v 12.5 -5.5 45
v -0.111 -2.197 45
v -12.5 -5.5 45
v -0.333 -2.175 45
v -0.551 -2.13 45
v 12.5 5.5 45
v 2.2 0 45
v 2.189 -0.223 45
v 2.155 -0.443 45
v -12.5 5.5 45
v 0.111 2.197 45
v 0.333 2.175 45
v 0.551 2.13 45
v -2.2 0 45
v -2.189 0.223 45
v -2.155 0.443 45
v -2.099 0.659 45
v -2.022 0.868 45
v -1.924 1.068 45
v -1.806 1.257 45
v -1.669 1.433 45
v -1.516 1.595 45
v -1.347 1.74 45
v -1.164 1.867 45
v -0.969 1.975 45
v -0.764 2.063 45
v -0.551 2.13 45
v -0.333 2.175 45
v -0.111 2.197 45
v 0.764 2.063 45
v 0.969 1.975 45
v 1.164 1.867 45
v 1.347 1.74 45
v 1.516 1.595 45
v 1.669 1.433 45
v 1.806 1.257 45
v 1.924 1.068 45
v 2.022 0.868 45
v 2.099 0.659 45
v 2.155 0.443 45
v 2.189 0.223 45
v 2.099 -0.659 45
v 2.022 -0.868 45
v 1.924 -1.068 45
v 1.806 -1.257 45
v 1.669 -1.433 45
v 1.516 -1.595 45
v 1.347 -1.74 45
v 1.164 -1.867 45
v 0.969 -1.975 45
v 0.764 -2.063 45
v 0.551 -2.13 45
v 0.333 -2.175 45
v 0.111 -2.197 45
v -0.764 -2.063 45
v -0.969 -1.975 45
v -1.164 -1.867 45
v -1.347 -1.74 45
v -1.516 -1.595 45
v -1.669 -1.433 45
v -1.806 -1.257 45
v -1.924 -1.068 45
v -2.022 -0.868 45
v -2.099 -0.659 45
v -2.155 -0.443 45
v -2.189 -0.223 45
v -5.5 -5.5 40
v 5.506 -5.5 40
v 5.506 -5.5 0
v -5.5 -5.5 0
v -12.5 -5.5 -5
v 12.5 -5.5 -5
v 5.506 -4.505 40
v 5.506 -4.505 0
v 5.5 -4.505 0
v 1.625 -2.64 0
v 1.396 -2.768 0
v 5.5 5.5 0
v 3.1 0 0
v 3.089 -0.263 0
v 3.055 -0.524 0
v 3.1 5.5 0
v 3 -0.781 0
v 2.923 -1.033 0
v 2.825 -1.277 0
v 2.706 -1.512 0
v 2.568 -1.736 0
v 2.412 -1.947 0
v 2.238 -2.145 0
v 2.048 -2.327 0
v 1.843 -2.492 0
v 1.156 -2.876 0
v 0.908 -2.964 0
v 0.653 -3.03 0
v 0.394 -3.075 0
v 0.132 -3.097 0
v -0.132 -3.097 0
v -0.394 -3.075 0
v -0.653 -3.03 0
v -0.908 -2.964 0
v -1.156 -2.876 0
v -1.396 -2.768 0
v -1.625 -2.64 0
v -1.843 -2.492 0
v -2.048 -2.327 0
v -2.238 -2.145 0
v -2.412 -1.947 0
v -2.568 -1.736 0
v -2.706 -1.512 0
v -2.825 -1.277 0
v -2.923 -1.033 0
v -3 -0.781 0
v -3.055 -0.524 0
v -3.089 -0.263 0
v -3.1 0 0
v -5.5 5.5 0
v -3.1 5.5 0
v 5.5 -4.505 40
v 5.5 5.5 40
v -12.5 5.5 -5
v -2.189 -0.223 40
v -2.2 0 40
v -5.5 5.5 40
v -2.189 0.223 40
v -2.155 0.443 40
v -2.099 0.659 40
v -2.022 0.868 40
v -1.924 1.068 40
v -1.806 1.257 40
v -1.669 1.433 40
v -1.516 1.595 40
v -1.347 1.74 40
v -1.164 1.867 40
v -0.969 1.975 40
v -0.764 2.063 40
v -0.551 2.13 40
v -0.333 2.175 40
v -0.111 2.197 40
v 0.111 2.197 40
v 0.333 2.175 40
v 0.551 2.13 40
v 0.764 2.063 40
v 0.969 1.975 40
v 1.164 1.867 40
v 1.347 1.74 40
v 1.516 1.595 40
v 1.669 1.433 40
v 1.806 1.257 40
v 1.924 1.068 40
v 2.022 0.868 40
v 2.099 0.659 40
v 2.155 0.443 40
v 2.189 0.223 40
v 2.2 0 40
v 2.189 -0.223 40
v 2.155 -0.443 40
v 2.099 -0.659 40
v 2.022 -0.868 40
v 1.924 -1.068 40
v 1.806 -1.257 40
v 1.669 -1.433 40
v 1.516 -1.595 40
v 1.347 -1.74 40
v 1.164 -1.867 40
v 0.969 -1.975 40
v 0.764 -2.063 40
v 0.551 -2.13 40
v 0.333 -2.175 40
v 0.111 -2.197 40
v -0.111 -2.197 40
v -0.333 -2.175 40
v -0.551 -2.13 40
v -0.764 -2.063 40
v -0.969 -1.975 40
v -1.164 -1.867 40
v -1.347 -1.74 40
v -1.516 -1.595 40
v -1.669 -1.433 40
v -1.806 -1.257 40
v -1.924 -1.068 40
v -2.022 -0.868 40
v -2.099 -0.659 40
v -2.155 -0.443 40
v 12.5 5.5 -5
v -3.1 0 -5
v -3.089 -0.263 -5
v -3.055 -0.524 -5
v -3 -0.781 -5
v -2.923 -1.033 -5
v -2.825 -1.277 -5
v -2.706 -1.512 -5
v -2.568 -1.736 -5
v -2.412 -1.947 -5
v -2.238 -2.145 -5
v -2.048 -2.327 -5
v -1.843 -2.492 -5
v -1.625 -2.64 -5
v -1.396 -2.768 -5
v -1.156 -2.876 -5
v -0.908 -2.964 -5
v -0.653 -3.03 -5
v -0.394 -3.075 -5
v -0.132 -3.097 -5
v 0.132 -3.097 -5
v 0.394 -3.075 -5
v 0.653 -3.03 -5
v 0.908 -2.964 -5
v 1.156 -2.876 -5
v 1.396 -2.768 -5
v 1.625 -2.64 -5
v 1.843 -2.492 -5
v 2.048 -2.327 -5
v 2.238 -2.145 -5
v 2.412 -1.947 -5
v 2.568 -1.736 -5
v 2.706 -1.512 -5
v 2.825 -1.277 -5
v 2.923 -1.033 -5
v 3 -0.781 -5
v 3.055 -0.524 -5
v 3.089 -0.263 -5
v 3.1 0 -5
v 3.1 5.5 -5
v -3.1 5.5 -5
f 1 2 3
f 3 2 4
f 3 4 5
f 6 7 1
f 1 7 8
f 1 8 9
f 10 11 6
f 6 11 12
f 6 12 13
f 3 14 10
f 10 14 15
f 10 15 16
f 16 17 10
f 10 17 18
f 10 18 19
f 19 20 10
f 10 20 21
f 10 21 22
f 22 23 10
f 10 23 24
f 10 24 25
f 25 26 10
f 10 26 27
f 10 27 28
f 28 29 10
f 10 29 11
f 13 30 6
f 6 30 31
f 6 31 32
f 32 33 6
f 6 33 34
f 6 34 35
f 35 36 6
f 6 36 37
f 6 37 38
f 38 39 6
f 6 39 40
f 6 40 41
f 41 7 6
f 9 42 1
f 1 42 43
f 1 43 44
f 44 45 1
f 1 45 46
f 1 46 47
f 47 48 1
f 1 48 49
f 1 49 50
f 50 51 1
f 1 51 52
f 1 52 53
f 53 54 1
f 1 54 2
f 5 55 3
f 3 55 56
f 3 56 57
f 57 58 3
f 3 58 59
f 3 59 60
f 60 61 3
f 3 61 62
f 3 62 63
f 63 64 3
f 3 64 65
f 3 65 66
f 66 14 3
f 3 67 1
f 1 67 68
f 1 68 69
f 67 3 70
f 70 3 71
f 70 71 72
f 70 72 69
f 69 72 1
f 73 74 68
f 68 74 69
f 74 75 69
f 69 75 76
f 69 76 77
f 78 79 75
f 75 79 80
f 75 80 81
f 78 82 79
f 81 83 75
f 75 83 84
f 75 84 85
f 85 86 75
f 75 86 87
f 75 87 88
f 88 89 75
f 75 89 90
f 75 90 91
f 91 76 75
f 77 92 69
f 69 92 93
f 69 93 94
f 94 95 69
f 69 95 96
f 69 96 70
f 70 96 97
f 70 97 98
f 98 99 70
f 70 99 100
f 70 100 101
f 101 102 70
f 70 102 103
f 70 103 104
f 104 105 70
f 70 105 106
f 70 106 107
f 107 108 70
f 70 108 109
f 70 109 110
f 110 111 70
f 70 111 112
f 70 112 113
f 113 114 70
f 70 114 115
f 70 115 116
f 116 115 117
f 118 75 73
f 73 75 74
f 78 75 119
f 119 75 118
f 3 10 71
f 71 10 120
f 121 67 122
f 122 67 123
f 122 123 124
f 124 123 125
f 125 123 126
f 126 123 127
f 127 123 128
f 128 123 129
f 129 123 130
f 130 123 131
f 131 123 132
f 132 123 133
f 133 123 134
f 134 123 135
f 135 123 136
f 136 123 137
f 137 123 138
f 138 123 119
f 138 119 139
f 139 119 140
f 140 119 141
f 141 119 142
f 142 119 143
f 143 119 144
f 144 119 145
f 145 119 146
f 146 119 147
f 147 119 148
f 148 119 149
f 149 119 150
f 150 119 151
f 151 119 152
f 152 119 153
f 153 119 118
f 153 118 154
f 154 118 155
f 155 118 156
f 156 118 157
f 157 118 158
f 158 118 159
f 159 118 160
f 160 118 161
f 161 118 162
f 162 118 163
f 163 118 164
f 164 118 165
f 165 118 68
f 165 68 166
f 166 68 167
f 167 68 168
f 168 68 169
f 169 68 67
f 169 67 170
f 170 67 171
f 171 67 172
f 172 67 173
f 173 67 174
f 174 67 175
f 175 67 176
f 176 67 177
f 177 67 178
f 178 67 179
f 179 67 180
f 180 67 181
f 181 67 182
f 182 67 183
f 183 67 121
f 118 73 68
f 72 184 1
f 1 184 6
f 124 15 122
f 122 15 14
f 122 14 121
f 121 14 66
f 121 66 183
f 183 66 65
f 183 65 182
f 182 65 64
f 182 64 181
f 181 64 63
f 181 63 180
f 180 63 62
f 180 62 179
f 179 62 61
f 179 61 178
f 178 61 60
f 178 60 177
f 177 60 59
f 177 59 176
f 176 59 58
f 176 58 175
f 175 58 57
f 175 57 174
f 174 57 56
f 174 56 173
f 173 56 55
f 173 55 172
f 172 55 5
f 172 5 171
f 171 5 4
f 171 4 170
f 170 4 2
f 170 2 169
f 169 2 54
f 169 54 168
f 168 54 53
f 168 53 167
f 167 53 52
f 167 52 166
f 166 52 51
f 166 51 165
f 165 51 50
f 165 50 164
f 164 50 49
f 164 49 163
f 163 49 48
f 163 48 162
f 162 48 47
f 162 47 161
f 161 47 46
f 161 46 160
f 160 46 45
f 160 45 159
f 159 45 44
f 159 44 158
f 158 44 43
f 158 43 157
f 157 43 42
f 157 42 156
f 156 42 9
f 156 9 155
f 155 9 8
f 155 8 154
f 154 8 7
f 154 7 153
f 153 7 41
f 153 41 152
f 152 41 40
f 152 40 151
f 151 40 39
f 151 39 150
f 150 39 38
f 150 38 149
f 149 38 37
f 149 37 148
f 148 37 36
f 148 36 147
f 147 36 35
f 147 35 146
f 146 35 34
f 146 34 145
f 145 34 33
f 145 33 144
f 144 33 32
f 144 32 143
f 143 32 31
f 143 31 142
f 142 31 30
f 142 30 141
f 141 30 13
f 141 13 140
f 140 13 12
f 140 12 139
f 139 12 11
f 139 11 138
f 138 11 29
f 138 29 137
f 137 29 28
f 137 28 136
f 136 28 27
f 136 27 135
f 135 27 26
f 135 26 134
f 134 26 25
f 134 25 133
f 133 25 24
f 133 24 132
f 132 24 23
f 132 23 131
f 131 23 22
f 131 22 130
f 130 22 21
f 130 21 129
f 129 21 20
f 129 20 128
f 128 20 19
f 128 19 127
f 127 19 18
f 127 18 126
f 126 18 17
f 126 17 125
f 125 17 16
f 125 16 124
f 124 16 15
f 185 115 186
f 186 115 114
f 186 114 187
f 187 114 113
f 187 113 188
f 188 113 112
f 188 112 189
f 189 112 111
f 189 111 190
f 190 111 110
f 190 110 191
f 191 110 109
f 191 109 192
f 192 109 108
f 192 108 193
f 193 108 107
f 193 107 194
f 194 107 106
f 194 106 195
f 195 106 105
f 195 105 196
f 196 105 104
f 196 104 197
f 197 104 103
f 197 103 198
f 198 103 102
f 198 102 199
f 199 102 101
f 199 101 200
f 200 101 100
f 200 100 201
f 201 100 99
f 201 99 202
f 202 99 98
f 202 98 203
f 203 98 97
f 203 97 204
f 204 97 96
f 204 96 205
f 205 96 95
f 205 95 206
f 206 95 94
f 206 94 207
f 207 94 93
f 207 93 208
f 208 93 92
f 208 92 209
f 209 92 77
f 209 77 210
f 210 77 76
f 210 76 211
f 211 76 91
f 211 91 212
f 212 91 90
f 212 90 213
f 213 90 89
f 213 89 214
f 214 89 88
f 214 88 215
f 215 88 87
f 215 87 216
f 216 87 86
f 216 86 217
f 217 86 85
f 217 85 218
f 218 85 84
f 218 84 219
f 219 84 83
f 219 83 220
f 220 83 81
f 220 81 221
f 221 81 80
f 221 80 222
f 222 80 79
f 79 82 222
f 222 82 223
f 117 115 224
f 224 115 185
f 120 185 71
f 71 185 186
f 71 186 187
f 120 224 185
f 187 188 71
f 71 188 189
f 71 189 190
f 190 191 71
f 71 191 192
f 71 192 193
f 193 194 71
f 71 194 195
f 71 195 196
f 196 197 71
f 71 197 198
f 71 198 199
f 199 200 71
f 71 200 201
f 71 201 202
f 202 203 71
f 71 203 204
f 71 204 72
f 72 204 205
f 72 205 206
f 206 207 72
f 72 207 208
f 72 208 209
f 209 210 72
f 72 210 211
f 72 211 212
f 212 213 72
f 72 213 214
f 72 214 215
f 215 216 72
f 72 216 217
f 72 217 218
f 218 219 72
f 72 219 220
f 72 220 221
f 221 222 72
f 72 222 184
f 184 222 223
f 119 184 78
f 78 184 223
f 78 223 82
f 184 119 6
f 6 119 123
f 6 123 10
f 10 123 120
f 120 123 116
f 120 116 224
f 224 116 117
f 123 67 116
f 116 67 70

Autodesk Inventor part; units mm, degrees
ref_plane "YZ Plane" through (0, 0, 0) normal (1, 0, 0) x (0, 1, 0)
ref_plane "XZ Plane" through (0, 0, 0) normal (0, 1, 0) x (-1, 0, 0)
ref_plane "XY Plane" through (0, 0, 0) normal (0, 0, 1) x (1, 0, 0)
sketch "Sketch1" plane through (0, 0, 0) normal (0, 0, 1) x (1, 0, 0)
  arc A0 (-3.1, 0) -> (3.1, 0) centre (0, 0) ccw
  arc A1 (-5.5, 0) -> (5.5, 0) centre (0, 0) ccw
  line L0 (-3.1, 0) -> (-5.5, 0)
  line L1 (-5.5, 0) -> (-5.5, 5.5)
  line L2 (-5.5, 5.5) -> (-3.1, 5.5)
  line L3 (-3.1, 5.5) -> (-3.1, 0)
  line L4 (3.1, 0) -> (5.5, 0)
  line L5 (5.5, 0) -> (5.5, 5.5)
  line L6 (5.5, 5.5) -> (3.1, 5.5)
  line L7 (3.1, 5.5) -> (3.1, 0)
  line L8 (-5.5, 0) -> (-5.5, 5.5)
  line L9 (-5.5, 5.5) -> (-12.5, 5.5)
  line L10 (-12.5, 5.5) -> (-12.5, 0)
  line L11 (-12.5, 0) -> (-5.5, 0)
  line L12 (5.5, 0) -> (5.5, 5.5)
  line L13 (5.5, 5.5) -> (12.5, 5.5)
  line L14 (12.5, 5.5) -> (12.5, 0)
  line L15 (12.5, 0) -> (5.5, 0)
  line L16 (12.5, 0) -> (12.5, -5.5)
  line L17 (12.5, -5.5) -> (-12.5, -5.5)
  line L18 (-12.5, -5.5) -> (-12.5, 0)
  dimension "d0" = 6.2
  dimension "d1" = 11
  dimension "d2" = 7
  dimension "d3" = 7
extrude "Extr-legs" add sketch "Sketch1" along normal blind 40 contours L11 L10 L9 L1 | L5 L13 L14 L15
extrude "Extr-base" add sketch "Sketch1" against normal blind 5 contours A0 L4 A1 L0 | L0 L1 L2 L3 | L7 L6 L5 L4 | L11 L10 L9 L1 | L5 L13 L14 L15
sketch "Sketch2" plane through (0, 0, 40) normal (0, 0, 1) x (1, 0, 0)
  circle A0 centre (0, 0) radius 2.2
  circle A1 centre (0, 0) radius 4.5
  line L0 (5.5, 0) -> (12.5, 0) projected
  line L1 (-12.5, 0) -> (-5.5, 0) projected
  line L2 (-12.5, 0) -> (-12.5, 5.5)
  line L3 (-12.5, 5.5) -> (12.5, 5.5)
  line L4 (12.5, 5.5) -> (12.5, 0)
  line L5 (12.5, 0) -> (2.2, 0)
  line L6 (-2.2, 0) -> (-12.5, 0)
  line L7 (-12.5, 0) -> (-12.5, -4.5048)
  line L8 (-12.5, -4.5048) -> (12.5, -4.5048)
  line L9 (12.5, -4.5048) -> (12.5, 0)
  line L10 (12.5, 0) -> (5.5, 0) projected
  line L11 (12.5, 0) -> (3.5, 0)
  line L12 (3.5, 0) -> (3.5, -4.5048)
  line L13 (3.5, -4.5048) -> (12.5, -4.5048)
  line L14 (12.5, -4.5048) -> (12.5, 0)
  line L15 (-12.5, 0) -> (-7.5, 0)
  line L16 (-7.5, 0) -> (-7.5, -4.5048)
  line L17 (-7.5, -4.5048) -> (-12.5, -4.5048)
  line L18 (-12.5, -4.5048) -> (-12.5, 0)
  dimension "d8" = 4.4
  dimension "d9" = 9
extrude "Extr-top" add sketch "Sketch2" along normal blind 5 contours L5 L12 A1 L6 A0 | A0 L6 A1 L5 | L5 A1 L12 | L6 L1 L2 L3 L4 L0 L5 A1 | A1 L12 L8 L16 L1 L6 | L5 L0 L9 L8 L12 A1 | L16 L8 L7 L1
extrude "Extrusion4" add sketch "Sketch1" against normal up to surface (5 mm away) contours A1 L17 L18 L11 | L15 L16 L17 A1
sketch "Sketch3" plane through (0, 0, 40) normal (0, 0, -1) x (-1, 0, 0)
  line L0 (-5.5, 0) -> (-12.5, 0) projected
  line L1 (-12.5, -4.5048) -> (-12.5, 0) projected
  line L2 (12.5, -4.5048) -> (-12.5, -4.5048) projected
  line L3 (12.5, 0) -> (12.5, -4.5048) projected
  line L4 (12.5, 0) -> (5.5, 0) projected
  line L5 (5.5, 0) -> (5.5, 5.5) projected
  line L6 (-5.5, 5.5) -> (5.5, 5.5) projected
  line L7 (-5.5, 5.5) -> (-5.5, 0) projected
  circle A0 centre (0, 0) radius 2.2 projected
  line L8 (12.5, -4.5048) -> (-12.5, -4.5048) projected
  line L9 (-12.5, 0) -> (-5.5, 0)
  line L10 (-5.5, 0) -> (-5.5, -4.5048)
  line L11 (-5.5, -4.5048) -> (-12.5, -4.5048)
  line L12 (-12.5, -4.5048) -> (-12.5, 0)
  line L13 (12.5, 0) -> (5.5, 0) projected
  line L14 (5.5, 0) -> (12.5, 0)
  line L15 (12.5, 0) -> (12.5, -4.5048)
  line L16 (12.5, -4.5048) -> (5.5, -4.5048)
  line L17 (5.5, -4.5048) -> (5.5, 0)
extrude "Extrusion5" add sketch "Sketch3" along normal up to next contours L10 L2 L1 L0 | L17 L4 L3 L2
sketch "Sketch4" plane through (0, 0, 0) normal (0, 0, 1) x (1, 0, 0)
  line L0 (-12.5, -5.5) -> (12.5, -5.5) projected
  line L1 (-5.5, -4.5048) -> (-12.5, -4.5048) projected
  line L2 (-12.5, -5.5) -> (-5.5, -5.5)
  line L3 (-5.5, -5.5) -> (-5.5, -4.5048)
  line L4 (-5.5, -4.5048) -> (-12.5, -4.5048)
  line L5 (-12.5, -4.5048) -> (-12.5, -5.5)
  line L6 (12.5, -4.5048) -> (5.5, -4.5048) projected
  line L7 (-12.5, -5.5) -> (12.5, -5.5) projected
  line L8 (12.5, -4.5048) -> (5.5064, -4.5048)
  line L9 (5.5064, -4.5048) -> (5.5064, -5.5)
  line L10 (5.5064, -5.5) -> (12.5, -5.5)
  line L11 (12.5, -5.5) -> (12.5, -4.5048)
  point P0 (0, 0)
extrude "Extrusion6" add sketch "Sketch4" along normal up to surface (45 mm away)
sketch "Sketch5" plane through (0, 0, 45) normal (0, 0, 1) x (1, 0, 0)
  line L0 (-5.5, -4.5048) -> (5.5, -4.5048) projected
  line L1 (-12.5, -5.5) -> (12.5, -5.5) projected
  line L2 (-5.5, -4.5048) -> (5.516, -4.5048)
  line L3 (5.516, -4.5048) -> (5.516, -5.5)
  line L4 (5.516, -5.5) -> (-5.5, -5.5)
  line L5 (-5.5, -5.5) -> (-5.5, -4.5048)
  point P0 (0, 0)
extrude "Extrusion7" add sketch "Sketch5" against normal up to surface (5 mm away)
properties part number "cage2table-mount-M4(top)-M6(bottom)"
